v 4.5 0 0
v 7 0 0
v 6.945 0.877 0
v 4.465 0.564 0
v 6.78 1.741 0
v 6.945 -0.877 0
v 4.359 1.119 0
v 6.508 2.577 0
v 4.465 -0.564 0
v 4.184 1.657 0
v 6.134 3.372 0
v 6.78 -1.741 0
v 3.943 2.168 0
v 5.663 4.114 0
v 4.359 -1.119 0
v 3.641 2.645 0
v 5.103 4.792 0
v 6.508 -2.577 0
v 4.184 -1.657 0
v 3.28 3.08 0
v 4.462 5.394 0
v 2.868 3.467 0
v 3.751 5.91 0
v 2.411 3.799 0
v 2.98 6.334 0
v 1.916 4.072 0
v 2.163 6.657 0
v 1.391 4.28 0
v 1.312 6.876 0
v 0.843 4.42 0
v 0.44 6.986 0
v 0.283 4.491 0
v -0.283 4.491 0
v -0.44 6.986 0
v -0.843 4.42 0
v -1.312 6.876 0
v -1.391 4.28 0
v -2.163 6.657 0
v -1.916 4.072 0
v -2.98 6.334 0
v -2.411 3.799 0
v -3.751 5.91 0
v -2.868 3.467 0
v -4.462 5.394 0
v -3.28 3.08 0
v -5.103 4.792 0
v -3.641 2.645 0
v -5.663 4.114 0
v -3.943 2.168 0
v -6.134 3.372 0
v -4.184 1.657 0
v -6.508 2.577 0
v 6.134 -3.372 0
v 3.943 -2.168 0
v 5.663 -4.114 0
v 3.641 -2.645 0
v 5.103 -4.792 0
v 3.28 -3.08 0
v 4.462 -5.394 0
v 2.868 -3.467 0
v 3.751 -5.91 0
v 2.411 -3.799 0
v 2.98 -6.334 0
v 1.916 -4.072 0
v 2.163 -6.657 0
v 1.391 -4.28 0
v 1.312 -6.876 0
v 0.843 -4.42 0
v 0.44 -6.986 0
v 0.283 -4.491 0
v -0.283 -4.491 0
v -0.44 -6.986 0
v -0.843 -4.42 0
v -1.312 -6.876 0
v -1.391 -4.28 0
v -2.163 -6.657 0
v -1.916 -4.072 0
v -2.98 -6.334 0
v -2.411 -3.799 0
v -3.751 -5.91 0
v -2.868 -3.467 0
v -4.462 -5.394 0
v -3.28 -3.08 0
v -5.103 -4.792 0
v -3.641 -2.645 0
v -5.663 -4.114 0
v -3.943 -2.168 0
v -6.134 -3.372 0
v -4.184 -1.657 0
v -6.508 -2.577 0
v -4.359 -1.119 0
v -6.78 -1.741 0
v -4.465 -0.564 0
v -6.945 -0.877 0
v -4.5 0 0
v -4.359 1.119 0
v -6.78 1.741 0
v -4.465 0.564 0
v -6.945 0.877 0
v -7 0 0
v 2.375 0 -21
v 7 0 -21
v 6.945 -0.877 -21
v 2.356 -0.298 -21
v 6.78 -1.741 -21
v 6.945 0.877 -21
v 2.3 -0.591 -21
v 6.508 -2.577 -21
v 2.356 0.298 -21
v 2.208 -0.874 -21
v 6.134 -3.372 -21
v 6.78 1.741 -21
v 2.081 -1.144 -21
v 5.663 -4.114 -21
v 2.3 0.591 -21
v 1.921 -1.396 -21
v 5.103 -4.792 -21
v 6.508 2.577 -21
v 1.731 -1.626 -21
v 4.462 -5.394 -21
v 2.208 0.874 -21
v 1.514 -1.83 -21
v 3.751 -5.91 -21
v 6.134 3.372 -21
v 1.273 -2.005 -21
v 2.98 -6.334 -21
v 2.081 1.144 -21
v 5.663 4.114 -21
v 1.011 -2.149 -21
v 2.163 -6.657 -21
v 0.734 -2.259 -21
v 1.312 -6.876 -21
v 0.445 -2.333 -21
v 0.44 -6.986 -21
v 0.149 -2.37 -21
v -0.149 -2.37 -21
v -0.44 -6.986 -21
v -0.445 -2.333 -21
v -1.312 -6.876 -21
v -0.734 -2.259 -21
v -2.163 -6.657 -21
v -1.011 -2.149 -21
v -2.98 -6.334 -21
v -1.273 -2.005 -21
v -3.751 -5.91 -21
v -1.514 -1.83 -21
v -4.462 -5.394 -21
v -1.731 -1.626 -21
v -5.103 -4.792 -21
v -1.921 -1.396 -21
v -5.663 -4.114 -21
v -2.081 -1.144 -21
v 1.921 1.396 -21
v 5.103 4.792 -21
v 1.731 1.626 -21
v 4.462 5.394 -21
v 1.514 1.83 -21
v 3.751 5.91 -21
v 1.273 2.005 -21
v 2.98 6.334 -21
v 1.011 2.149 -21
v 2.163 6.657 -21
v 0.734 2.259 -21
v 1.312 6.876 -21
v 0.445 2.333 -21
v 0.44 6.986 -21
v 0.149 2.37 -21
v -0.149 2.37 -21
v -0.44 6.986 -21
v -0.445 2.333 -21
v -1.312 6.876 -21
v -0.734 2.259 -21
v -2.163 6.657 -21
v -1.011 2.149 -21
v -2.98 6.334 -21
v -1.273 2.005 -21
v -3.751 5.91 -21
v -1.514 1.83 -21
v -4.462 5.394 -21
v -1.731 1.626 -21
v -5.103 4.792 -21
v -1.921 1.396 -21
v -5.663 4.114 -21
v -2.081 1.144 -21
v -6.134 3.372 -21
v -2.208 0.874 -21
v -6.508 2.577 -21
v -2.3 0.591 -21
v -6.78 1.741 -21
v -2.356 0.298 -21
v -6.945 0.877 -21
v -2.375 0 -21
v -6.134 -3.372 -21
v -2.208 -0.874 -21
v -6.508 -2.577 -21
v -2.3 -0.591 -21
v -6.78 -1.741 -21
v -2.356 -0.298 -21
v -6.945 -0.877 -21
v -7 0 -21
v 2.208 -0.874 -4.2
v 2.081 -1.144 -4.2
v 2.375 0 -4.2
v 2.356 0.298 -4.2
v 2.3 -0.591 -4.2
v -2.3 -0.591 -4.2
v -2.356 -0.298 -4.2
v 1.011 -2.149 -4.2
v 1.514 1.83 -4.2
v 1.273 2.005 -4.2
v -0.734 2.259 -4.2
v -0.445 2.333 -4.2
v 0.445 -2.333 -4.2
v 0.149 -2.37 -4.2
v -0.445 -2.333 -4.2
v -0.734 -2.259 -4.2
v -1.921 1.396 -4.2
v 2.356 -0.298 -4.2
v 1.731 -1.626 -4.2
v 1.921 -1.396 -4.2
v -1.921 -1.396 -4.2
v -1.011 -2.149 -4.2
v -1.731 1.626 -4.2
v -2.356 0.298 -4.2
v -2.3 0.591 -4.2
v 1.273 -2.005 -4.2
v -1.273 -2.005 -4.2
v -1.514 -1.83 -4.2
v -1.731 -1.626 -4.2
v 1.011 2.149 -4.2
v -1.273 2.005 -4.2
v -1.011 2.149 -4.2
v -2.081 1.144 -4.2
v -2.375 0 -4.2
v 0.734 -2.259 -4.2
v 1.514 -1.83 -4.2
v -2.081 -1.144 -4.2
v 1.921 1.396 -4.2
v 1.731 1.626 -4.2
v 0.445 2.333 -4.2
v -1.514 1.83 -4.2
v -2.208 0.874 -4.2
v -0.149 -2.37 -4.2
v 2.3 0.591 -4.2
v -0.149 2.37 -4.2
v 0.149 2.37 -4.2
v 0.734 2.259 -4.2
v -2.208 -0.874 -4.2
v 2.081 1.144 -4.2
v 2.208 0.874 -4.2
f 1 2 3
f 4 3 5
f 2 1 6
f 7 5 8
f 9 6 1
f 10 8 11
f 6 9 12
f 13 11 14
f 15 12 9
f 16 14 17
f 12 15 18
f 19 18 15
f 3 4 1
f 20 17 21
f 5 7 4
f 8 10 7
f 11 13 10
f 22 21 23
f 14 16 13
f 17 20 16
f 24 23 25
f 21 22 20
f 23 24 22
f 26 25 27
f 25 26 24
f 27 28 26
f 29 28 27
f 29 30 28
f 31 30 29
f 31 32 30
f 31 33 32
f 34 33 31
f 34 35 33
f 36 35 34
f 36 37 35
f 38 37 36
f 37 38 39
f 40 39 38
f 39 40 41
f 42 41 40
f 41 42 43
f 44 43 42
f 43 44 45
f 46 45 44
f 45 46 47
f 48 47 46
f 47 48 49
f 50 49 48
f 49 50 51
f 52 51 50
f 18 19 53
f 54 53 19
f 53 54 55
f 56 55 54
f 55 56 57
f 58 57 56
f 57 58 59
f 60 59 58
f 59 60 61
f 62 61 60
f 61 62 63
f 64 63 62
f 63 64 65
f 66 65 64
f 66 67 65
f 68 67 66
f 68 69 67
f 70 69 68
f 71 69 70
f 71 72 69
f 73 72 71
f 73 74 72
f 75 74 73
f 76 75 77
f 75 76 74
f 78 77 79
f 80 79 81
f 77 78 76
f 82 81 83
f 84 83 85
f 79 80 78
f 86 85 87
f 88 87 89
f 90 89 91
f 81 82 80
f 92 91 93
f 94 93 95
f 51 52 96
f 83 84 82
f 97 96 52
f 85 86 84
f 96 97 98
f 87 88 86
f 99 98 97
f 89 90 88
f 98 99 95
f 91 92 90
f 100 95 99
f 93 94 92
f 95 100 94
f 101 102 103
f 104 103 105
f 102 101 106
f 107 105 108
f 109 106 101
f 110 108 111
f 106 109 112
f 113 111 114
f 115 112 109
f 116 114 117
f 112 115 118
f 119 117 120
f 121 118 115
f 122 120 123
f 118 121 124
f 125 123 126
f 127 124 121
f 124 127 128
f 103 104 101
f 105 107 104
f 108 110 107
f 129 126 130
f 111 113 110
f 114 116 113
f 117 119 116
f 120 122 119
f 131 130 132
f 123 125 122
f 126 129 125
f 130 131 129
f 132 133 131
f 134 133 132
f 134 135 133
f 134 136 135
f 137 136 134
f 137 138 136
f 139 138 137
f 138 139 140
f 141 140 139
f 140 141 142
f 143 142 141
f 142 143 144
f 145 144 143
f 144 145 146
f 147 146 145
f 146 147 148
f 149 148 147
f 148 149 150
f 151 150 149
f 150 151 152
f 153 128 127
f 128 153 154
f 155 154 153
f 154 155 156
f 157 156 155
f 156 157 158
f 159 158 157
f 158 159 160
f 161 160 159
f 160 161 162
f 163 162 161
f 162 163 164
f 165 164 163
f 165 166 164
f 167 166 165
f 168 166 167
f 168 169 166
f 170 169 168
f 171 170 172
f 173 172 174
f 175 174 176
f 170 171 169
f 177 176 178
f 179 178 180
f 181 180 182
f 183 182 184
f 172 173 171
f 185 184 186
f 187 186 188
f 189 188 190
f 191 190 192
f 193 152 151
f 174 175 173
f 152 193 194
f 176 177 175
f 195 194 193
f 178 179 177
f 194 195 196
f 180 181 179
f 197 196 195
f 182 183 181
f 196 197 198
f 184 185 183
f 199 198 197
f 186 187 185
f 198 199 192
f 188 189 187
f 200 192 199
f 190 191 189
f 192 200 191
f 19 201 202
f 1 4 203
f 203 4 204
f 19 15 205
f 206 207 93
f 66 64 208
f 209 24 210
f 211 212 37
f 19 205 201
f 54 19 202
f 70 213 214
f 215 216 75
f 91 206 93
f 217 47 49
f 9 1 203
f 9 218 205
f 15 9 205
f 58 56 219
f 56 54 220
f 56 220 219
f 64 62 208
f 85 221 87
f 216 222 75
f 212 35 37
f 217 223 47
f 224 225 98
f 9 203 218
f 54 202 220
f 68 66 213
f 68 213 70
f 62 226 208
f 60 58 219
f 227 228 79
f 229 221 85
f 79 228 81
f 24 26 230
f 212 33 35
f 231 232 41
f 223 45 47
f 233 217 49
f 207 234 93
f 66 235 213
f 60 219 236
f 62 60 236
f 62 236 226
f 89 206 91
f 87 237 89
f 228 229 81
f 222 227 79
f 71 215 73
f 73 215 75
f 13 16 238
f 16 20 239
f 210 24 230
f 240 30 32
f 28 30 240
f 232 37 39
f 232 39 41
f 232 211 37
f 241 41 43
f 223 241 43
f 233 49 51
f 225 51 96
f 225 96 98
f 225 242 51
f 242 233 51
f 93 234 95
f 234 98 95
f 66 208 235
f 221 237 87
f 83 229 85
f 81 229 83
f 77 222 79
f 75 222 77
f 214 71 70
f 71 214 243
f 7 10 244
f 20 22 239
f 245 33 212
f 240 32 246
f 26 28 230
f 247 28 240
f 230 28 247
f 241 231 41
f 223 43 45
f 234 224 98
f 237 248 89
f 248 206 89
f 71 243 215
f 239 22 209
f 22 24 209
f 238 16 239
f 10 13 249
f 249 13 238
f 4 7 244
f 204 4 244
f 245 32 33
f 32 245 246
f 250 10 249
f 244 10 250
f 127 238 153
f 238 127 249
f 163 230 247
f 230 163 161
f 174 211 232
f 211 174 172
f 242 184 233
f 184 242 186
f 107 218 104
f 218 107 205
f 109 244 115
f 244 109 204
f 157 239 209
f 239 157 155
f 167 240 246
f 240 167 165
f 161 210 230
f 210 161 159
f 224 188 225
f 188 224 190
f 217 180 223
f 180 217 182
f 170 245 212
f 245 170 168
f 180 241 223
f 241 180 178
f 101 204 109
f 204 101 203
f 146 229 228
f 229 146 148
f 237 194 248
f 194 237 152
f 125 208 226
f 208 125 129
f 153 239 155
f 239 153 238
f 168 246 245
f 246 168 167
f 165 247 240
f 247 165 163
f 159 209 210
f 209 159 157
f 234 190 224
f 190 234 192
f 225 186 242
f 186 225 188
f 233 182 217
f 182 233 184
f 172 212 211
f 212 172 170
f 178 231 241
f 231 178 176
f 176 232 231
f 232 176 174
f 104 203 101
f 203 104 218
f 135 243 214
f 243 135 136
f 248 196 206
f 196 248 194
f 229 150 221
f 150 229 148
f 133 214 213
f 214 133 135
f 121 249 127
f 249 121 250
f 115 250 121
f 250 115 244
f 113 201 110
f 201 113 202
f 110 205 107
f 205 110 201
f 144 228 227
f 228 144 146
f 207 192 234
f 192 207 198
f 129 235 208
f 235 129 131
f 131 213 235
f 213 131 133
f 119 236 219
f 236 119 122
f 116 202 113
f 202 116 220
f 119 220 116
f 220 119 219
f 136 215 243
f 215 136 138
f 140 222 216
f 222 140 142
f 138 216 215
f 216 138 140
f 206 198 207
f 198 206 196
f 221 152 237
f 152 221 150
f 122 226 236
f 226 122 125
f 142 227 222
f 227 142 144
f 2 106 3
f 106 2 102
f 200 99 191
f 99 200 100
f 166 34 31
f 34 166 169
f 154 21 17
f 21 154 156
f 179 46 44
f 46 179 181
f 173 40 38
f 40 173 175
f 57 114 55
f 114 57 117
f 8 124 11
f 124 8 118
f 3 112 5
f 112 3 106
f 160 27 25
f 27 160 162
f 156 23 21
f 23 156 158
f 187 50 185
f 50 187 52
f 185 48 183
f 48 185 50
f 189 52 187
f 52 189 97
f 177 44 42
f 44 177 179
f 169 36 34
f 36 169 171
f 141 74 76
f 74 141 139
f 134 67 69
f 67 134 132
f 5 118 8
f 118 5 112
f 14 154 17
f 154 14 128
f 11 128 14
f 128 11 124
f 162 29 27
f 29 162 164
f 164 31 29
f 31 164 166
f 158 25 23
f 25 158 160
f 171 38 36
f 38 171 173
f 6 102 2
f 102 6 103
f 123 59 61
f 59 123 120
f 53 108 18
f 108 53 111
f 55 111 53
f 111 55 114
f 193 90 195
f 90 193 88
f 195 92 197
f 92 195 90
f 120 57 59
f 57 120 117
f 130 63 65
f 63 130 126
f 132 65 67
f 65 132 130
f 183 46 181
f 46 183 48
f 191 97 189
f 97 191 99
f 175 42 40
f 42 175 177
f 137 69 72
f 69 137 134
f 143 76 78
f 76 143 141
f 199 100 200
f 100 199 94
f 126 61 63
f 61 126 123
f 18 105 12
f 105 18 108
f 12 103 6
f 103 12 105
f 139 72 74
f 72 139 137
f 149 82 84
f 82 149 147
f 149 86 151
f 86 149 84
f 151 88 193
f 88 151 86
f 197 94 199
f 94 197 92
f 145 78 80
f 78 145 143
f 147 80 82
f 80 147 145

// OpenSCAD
$fn = 50;


difference() {
	union() {
		translate(v = [0, 0, -21.0000000000]) {
			cylinder(h = 21, r = 7.0000000000);
		}
		cylinder(h = 0, r = 10.0000000000);
	}
	union() {
		translate(v = [0, 0, 0]) {
			rotate(a = [0, 0, 0]) {
				difference() {
					union() {
						#translate(v = [0, 0, -21.0000000000]) {
							cylinder(h = 21, r = 2.2500000000);
						}
						#translate(v = [0, 0, -4.2000000000]) {
							cylinder(h = 4.2000000000, r1 = 2.3750000000, r2 = 4.5000000000);
						}
						#translate(v = [0, 0, -21.0000000000]) {
							cylinder(h = 21, r = 2.3750000000);
						}
						#translate(v = [0, 0, -21.0000000000]) {
							cylinder(h = 21, r = 2.2500000000);
						}
					}
					union();
				}
			}
		}
	}
}
